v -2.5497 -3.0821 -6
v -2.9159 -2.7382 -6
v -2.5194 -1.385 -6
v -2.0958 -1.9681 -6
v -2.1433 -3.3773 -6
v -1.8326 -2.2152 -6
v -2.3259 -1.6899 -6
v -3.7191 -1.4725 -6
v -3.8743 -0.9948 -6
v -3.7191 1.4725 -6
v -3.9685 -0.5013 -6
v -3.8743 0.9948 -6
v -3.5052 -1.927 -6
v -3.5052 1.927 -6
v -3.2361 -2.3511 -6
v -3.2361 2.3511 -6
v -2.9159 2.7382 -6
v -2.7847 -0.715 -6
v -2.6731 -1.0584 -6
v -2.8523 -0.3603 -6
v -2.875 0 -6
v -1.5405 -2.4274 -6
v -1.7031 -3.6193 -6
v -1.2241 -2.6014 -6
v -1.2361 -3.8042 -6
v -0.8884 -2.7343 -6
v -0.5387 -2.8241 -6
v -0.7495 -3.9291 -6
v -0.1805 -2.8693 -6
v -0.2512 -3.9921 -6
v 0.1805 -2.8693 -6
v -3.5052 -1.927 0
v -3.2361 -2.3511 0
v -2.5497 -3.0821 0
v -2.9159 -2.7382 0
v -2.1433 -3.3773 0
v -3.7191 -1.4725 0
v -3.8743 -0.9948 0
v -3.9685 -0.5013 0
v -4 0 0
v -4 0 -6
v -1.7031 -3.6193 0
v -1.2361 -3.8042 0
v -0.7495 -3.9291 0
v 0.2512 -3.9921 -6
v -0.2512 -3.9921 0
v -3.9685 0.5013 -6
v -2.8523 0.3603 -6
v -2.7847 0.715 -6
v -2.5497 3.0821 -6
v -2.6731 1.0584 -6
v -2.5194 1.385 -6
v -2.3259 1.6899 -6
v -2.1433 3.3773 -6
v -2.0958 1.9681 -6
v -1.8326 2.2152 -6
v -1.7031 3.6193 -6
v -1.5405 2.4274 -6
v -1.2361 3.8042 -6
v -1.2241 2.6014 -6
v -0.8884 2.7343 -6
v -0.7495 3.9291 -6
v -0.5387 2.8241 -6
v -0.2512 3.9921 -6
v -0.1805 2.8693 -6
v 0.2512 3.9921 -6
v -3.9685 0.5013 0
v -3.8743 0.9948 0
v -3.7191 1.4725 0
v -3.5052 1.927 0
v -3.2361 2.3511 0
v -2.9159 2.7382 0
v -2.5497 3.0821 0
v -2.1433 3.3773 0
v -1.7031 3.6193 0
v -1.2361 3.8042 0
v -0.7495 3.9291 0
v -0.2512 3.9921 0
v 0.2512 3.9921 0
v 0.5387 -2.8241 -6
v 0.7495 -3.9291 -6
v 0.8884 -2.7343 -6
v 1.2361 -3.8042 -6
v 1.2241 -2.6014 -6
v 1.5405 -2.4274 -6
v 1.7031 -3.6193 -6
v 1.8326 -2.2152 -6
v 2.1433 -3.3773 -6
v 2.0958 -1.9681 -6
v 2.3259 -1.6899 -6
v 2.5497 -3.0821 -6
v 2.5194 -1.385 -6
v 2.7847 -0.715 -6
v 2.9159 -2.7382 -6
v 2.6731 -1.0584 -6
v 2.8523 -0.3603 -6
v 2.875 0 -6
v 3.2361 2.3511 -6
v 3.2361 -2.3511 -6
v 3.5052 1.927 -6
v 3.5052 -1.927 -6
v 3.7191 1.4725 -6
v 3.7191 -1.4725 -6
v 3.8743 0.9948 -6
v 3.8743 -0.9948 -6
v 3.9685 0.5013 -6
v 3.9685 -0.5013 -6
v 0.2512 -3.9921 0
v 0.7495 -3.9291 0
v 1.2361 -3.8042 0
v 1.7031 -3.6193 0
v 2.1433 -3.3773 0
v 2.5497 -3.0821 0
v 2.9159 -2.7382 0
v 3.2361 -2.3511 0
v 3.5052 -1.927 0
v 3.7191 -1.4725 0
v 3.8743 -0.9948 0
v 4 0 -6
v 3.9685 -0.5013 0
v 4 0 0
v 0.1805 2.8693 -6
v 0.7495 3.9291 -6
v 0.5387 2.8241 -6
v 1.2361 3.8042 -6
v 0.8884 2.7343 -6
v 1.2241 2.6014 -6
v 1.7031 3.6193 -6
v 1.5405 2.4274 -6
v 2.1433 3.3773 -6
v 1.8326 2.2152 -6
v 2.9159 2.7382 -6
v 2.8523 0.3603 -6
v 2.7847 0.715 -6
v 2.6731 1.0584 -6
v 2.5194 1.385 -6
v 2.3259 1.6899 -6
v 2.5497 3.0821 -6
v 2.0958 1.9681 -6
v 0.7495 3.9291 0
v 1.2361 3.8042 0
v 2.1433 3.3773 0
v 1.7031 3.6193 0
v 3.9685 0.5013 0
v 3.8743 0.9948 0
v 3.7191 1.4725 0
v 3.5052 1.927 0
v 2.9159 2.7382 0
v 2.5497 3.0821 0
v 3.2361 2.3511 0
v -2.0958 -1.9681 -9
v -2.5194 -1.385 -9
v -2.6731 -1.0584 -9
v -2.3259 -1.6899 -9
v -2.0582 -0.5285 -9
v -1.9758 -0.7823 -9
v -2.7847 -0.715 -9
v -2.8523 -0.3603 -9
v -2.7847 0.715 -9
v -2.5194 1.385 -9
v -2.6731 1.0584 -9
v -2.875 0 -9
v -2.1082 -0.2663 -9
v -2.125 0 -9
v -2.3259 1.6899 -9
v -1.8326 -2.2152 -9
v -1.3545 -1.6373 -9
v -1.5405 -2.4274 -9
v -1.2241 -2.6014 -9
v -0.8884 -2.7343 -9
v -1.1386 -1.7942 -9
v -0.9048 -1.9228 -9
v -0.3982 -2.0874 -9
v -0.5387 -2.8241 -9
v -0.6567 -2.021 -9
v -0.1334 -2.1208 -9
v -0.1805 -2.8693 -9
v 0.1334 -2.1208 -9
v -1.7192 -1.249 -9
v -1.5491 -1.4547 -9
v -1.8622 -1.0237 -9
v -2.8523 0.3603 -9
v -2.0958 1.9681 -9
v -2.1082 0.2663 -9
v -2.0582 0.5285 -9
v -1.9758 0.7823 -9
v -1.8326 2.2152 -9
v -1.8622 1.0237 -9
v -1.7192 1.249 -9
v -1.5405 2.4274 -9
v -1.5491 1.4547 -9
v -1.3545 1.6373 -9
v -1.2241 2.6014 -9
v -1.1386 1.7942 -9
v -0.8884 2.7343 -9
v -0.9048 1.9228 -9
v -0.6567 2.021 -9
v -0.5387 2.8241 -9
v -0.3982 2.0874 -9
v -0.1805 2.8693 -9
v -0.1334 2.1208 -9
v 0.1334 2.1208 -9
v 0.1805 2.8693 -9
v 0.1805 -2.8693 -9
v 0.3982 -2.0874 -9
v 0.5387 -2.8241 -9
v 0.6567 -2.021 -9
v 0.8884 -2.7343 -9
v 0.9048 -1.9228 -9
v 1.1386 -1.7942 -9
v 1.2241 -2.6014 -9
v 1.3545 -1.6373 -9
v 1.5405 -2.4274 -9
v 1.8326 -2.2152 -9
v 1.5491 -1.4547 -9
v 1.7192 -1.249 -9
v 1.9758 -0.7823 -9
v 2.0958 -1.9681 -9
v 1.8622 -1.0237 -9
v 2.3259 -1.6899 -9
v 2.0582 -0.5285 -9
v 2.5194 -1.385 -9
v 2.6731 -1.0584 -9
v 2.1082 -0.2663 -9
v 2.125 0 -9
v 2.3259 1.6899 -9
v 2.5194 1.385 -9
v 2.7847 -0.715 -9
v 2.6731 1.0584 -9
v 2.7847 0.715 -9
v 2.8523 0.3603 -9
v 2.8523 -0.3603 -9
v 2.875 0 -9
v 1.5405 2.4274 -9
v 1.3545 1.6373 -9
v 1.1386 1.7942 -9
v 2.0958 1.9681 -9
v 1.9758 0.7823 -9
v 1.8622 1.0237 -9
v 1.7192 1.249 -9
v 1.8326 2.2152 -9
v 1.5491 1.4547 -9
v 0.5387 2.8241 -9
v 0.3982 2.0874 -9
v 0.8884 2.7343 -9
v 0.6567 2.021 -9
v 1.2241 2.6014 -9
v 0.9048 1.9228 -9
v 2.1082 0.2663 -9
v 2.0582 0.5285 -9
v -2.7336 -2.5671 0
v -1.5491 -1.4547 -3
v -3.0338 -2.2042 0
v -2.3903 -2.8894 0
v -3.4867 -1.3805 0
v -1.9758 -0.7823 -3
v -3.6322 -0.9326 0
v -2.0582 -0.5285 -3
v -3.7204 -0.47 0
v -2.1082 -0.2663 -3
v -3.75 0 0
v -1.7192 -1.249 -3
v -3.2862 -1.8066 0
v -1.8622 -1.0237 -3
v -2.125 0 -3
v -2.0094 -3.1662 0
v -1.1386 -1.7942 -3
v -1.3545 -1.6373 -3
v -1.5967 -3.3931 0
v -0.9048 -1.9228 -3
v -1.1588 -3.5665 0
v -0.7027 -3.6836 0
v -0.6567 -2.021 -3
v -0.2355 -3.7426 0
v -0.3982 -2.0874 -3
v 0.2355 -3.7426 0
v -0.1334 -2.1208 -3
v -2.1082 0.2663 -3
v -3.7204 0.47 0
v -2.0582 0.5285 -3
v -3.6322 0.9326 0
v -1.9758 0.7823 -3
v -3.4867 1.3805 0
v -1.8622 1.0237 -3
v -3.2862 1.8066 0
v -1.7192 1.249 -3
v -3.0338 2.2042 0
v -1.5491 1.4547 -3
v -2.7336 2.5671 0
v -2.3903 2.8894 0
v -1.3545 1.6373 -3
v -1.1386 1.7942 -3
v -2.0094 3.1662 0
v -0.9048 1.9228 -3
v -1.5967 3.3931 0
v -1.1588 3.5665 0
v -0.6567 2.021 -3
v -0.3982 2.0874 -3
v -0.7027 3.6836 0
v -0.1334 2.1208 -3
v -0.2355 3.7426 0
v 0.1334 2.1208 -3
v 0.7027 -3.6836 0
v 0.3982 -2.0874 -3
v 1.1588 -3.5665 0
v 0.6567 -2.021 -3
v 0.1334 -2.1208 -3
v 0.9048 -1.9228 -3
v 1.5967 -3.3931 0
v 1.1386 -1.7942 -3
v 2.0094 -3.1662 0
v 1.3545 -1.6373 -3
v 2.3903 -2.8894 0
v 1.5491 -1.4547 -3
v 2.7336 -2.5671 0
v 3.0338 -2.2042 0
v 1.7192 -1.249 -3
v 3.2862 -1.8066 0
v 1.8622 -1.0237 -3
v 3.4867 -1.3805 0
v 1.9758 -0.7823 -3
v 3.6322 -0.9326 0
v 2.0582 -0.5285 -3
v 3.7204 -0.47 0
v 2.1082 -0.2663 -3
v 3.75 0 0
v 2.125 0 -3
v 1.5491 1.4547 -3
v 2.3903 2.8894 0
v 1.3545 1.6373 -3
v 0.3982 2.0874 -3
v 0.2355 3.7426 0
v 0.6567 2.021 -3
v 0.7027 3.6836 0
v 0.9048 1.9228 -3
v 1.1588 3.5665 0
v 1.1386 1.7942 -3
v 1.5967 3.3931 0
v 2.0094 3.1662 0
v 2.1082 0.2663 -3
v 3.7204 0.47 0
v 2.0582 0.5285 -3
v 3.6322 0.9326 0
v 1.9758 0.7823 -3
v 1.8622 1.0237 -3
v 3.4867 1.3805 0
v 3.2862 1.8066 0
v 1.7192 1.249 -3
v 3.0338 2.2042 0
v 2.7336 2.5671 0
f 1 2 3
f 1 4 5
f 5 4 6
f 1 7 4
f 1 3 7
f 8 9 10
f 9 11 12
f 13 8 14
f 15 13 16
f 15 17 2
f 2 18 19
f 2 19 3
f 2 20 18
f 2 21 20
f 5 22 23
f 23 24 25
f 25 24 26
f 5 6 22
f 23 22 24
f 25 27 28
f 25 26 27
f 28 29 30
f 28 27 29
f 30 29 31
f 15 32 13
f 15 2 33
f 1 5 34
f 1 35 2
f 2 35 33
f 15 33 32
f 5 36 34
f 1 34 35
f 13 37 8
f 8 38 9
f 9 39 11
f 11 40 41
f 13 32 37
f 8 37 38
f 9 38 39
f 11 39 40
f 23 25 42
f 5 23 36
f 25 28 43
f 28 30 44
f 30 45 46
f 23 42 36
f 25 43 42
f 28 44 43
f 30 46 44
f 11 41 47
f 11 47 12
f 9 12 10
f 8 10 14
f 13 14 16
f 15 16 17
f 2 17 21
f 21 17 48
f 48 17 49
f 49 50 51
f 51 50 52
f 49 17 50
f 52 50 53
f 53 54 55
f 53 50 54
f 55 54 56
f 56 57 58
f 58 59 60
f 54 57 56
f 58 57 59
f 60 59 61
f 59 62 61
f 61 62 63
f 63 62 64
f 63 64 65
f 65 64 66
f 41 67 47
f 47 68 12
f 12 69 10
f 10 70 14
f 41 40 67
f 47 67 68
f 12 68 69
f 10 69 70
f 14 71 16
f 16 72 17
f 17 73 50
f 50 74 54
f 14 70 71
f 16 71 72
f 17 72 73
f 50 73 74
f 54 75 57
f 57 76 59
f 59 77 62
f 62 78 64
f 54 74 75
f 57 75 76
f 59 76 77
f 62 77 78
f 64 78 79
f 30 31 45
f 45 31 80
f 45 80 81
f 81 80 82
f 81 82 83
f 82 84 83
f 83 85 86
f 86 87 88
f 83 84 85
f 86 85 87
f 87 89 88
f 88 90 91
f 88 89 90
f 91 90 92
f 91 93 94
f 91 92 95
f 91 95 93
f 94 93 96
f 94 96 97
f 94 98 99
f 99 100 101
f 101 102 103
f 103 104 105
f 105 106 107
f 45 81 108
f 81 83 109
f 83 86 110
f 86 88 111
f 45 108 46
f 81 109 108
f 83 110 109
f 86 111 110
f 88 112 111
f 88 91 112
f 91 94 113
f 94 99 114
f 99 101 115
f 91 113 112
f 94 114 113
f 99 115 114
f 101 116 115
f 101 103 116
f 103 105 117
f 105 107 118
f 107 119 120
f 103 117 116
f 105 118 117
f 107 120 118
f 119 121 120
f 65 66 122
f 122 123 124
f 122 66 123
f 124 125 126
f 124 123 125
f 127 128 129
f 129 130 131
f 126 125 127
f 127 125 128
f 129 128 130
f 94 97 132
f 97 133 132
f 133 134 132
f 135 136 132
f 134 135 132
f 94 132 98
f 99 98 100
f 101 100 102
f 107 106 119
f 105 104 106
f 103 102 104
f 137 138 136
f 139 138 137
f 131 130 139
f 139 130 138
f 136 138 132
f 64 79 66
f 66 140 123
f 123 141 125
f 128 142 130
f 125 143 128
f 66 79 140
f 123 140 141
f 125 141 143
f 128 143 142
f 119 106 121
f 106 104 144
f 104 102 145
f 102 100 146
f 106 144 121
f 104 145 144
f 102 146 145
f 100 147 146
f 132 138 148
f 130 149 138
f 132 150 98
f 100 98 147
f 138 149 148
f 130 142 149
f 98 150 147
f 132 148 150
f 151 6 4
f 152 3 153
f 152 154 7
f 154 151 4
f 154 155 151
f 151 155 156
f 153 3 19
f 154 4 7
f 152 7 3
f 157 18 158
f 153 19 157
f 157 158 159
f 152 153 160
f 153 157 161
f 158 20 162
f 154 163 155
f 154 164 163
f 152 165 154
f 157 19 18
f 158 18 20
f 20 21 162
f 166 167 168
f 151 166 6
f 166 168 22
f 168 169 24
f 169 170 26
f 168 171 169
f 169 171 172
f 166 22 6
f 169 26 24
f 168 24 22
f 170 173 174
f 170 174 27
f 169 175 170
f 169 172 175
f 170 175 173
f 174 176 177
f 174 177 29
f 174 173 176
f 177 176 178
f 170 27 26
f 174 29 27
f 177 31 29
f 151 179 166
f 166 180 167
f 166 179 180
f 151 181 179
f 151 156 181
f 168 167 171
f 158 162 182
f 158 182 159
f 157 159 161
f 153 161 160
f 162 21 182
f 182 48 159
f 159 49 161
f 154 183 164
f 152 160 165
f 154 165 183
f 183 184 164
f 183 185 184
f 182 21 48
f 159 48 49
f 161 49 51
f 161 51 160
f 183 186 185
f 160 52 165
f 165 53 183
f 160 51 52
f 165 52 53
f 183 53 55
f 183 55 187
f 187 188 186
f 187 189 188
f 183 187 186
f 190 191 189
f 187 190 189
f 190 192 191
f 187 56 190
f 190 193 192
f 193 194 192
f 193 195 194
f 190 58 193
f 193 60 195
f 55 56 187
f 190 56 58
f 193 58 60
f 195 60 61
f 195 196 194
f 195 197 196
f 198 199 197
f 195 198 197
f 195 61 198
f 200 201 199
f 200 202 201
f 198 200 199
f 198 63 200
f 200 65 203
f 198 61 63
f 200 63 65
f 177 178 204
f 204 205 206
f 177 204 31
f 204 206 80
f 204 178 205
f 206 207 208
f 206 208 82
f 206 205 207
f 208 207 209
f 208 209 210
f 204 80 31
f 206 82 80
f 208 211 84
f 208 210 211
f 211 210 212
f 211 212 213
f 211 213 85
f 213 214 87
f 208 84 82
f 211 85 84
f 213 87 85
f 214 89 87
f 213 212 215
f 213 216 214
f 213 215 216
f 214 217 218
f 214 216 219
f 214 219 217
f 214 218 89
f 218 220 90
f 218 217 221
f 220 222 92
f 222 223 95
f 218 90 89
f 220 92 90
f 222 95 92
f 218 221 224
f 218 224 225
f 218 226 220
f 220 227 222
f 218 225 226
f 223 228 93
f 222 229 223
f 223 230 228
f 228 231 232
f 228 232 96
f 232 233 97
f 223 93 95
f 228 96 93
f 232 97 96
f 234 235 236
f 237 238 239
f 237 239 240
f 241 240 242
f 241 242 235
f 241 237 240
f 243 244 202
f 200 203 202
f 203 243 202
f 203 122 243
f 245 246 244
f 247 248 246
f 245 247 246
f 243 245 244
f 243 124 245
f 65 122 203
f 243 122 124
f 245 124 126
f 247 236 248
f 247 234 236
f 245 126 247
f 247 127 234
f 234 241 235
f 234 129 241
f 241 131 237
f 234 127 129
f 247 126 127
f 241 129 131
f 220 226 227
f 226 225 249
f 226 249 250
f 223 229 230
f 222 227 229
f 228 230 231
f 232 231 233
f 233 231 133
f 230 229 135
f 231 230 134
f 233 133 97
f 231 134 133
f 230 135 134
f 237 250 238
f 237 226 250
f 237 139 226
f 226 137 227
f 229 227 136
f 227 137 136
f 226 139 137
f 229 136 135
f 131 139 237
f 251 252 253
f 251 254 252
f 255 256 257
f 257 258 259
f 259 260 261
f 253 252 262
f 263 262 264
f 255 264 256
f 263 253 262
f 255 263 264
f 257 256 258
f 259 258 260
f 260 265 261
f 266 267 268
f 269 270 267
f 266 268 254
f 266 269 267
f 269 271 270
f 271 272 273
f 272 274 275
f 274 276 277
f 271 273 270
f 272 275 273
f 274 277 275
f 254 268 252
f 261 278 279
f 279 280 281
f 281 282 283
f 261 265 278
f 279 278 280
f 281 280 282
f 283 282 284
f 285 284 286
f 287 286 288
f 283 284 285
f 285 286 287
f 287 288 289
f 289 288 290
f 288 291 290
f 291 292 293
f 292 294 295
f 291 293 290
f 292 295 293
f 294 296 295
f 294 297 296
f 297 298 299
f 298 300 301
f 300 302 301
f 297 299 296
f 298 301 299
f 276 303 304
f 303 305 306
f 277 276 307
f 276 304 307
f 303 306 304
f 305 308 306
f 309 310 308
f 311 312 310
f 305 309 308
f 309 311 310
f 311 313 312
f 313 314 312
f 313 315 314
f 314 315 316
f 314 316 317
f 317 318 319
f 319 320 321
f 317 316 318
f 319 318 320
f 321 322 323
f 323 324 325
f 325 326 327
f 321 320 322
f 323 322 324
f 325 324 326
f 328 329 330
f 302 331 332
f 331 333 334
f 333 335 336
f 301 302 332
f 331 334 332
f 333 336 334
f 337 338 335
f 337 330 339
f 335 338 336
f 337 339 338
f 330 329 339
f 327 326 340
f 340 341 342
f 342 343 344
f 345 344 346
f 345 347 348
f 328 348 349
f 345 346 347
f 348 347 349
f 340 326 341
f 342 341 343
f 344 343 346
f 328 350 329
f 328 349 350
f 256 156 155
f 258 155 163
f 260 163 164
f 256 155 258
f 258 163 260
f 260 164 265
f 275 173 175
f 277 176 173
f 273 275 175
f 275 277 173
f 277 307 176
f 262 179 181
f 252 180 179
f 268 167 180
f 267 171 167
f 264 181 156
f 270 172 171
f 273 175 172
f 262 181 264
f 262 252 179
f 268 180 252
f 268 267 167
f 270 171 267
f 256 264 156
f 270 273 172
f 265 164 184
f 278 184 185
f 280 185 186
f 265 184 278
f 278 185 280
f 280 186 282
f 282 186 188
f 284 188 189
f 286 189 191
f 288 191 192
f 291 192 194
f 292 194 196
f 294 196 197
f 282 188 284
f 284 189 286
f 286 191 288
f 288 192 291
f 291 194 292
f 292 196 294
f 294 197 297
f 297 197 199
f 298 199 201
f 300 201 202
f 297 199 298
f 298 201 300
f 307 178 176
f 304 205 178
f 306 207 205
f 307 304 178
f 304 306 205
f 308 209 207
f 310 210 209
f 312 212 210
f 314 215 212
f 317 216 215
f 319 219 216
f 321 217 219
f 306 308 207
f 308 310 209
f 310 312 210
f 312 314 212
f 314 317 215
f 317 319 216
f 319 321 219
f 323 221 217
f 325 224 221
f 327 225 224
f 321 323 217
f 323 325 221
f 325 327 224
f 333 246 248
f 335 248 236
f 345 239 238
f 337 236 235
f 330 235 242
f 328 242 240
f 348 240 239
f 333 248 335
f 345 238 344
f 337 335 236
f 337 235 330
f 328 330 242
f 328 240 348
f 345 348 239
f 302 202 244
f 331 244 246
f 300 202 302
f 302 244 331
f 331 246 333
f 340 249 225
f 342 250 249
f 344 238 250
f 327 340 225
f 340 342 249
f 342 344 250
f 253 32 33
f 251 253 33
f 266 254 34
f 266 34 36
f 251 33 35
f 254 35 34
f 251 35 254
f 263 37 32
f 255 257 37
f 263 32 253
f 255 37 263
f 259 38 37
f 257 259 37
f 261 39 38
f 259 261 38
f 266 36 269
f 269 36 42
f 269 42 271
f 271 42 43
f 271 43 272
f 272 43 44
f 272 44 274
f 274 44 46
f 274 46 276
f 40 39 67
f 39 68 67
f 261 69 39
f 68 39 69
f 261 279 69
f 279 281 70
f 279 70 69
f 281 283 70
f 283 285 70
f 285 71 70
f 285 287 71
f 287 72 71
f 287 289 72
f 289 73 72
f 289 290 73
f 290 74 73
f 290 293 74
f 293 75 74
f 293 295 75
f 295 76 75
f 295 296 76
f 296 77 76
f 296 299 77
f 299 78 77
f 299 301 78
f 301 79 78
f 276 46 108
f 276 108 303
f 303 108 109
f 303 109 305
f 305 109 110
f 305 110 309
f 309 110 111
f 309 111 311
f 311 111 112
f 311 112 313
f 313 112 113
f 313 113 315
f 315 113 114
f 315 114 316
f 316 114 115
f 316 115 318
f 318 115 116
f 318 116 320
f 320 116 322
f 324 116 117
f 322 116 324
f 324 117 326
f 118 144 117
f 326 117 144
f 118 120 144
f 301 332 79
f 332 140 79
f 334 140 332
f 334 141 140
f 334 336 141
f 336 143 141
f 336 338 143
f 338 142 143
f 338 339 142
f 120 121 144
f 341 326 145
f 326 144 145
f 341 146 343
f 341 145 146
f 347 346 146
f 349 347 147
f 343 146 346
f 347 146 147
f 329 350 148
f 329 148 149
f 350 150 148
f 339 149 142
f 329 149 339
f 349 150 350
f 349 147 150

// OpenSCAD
$fn = 50;

difference() {
	union() {
		translate(v = [0, 0, -6.0]) {
			cylinder(h = 9, r = 4.0);
		}
		#translate(v = [0, 0, -9.0]) {
			cylinder(h = 9, r = 2.875);
		}
	}
	union() {
		translate(v = [0, 0, 0]) {
			rotate(a = [0, 0, 0]) {
				difference() {
					union() {
						translate(v = [0, 0, -9.0]) {
							cylinder(h = 9, r = 2.0);
						}
						translate(v = [0, 0, -3]) {
							cylinder(h = 3, r1 = 2.125, r2 = 3.75);
						}
						translate(v = [0, 0, -9.0]) {
							cylinder(h = 9, r = 2.125);
						}
						translate(v = [0, 0, -9.0]) {
							cylinder(h = 9, r = 2.0);
						}
					}
					union();
				}
			}
		}
		#cylinder(h = 3, r = 5.0);
	}
}
